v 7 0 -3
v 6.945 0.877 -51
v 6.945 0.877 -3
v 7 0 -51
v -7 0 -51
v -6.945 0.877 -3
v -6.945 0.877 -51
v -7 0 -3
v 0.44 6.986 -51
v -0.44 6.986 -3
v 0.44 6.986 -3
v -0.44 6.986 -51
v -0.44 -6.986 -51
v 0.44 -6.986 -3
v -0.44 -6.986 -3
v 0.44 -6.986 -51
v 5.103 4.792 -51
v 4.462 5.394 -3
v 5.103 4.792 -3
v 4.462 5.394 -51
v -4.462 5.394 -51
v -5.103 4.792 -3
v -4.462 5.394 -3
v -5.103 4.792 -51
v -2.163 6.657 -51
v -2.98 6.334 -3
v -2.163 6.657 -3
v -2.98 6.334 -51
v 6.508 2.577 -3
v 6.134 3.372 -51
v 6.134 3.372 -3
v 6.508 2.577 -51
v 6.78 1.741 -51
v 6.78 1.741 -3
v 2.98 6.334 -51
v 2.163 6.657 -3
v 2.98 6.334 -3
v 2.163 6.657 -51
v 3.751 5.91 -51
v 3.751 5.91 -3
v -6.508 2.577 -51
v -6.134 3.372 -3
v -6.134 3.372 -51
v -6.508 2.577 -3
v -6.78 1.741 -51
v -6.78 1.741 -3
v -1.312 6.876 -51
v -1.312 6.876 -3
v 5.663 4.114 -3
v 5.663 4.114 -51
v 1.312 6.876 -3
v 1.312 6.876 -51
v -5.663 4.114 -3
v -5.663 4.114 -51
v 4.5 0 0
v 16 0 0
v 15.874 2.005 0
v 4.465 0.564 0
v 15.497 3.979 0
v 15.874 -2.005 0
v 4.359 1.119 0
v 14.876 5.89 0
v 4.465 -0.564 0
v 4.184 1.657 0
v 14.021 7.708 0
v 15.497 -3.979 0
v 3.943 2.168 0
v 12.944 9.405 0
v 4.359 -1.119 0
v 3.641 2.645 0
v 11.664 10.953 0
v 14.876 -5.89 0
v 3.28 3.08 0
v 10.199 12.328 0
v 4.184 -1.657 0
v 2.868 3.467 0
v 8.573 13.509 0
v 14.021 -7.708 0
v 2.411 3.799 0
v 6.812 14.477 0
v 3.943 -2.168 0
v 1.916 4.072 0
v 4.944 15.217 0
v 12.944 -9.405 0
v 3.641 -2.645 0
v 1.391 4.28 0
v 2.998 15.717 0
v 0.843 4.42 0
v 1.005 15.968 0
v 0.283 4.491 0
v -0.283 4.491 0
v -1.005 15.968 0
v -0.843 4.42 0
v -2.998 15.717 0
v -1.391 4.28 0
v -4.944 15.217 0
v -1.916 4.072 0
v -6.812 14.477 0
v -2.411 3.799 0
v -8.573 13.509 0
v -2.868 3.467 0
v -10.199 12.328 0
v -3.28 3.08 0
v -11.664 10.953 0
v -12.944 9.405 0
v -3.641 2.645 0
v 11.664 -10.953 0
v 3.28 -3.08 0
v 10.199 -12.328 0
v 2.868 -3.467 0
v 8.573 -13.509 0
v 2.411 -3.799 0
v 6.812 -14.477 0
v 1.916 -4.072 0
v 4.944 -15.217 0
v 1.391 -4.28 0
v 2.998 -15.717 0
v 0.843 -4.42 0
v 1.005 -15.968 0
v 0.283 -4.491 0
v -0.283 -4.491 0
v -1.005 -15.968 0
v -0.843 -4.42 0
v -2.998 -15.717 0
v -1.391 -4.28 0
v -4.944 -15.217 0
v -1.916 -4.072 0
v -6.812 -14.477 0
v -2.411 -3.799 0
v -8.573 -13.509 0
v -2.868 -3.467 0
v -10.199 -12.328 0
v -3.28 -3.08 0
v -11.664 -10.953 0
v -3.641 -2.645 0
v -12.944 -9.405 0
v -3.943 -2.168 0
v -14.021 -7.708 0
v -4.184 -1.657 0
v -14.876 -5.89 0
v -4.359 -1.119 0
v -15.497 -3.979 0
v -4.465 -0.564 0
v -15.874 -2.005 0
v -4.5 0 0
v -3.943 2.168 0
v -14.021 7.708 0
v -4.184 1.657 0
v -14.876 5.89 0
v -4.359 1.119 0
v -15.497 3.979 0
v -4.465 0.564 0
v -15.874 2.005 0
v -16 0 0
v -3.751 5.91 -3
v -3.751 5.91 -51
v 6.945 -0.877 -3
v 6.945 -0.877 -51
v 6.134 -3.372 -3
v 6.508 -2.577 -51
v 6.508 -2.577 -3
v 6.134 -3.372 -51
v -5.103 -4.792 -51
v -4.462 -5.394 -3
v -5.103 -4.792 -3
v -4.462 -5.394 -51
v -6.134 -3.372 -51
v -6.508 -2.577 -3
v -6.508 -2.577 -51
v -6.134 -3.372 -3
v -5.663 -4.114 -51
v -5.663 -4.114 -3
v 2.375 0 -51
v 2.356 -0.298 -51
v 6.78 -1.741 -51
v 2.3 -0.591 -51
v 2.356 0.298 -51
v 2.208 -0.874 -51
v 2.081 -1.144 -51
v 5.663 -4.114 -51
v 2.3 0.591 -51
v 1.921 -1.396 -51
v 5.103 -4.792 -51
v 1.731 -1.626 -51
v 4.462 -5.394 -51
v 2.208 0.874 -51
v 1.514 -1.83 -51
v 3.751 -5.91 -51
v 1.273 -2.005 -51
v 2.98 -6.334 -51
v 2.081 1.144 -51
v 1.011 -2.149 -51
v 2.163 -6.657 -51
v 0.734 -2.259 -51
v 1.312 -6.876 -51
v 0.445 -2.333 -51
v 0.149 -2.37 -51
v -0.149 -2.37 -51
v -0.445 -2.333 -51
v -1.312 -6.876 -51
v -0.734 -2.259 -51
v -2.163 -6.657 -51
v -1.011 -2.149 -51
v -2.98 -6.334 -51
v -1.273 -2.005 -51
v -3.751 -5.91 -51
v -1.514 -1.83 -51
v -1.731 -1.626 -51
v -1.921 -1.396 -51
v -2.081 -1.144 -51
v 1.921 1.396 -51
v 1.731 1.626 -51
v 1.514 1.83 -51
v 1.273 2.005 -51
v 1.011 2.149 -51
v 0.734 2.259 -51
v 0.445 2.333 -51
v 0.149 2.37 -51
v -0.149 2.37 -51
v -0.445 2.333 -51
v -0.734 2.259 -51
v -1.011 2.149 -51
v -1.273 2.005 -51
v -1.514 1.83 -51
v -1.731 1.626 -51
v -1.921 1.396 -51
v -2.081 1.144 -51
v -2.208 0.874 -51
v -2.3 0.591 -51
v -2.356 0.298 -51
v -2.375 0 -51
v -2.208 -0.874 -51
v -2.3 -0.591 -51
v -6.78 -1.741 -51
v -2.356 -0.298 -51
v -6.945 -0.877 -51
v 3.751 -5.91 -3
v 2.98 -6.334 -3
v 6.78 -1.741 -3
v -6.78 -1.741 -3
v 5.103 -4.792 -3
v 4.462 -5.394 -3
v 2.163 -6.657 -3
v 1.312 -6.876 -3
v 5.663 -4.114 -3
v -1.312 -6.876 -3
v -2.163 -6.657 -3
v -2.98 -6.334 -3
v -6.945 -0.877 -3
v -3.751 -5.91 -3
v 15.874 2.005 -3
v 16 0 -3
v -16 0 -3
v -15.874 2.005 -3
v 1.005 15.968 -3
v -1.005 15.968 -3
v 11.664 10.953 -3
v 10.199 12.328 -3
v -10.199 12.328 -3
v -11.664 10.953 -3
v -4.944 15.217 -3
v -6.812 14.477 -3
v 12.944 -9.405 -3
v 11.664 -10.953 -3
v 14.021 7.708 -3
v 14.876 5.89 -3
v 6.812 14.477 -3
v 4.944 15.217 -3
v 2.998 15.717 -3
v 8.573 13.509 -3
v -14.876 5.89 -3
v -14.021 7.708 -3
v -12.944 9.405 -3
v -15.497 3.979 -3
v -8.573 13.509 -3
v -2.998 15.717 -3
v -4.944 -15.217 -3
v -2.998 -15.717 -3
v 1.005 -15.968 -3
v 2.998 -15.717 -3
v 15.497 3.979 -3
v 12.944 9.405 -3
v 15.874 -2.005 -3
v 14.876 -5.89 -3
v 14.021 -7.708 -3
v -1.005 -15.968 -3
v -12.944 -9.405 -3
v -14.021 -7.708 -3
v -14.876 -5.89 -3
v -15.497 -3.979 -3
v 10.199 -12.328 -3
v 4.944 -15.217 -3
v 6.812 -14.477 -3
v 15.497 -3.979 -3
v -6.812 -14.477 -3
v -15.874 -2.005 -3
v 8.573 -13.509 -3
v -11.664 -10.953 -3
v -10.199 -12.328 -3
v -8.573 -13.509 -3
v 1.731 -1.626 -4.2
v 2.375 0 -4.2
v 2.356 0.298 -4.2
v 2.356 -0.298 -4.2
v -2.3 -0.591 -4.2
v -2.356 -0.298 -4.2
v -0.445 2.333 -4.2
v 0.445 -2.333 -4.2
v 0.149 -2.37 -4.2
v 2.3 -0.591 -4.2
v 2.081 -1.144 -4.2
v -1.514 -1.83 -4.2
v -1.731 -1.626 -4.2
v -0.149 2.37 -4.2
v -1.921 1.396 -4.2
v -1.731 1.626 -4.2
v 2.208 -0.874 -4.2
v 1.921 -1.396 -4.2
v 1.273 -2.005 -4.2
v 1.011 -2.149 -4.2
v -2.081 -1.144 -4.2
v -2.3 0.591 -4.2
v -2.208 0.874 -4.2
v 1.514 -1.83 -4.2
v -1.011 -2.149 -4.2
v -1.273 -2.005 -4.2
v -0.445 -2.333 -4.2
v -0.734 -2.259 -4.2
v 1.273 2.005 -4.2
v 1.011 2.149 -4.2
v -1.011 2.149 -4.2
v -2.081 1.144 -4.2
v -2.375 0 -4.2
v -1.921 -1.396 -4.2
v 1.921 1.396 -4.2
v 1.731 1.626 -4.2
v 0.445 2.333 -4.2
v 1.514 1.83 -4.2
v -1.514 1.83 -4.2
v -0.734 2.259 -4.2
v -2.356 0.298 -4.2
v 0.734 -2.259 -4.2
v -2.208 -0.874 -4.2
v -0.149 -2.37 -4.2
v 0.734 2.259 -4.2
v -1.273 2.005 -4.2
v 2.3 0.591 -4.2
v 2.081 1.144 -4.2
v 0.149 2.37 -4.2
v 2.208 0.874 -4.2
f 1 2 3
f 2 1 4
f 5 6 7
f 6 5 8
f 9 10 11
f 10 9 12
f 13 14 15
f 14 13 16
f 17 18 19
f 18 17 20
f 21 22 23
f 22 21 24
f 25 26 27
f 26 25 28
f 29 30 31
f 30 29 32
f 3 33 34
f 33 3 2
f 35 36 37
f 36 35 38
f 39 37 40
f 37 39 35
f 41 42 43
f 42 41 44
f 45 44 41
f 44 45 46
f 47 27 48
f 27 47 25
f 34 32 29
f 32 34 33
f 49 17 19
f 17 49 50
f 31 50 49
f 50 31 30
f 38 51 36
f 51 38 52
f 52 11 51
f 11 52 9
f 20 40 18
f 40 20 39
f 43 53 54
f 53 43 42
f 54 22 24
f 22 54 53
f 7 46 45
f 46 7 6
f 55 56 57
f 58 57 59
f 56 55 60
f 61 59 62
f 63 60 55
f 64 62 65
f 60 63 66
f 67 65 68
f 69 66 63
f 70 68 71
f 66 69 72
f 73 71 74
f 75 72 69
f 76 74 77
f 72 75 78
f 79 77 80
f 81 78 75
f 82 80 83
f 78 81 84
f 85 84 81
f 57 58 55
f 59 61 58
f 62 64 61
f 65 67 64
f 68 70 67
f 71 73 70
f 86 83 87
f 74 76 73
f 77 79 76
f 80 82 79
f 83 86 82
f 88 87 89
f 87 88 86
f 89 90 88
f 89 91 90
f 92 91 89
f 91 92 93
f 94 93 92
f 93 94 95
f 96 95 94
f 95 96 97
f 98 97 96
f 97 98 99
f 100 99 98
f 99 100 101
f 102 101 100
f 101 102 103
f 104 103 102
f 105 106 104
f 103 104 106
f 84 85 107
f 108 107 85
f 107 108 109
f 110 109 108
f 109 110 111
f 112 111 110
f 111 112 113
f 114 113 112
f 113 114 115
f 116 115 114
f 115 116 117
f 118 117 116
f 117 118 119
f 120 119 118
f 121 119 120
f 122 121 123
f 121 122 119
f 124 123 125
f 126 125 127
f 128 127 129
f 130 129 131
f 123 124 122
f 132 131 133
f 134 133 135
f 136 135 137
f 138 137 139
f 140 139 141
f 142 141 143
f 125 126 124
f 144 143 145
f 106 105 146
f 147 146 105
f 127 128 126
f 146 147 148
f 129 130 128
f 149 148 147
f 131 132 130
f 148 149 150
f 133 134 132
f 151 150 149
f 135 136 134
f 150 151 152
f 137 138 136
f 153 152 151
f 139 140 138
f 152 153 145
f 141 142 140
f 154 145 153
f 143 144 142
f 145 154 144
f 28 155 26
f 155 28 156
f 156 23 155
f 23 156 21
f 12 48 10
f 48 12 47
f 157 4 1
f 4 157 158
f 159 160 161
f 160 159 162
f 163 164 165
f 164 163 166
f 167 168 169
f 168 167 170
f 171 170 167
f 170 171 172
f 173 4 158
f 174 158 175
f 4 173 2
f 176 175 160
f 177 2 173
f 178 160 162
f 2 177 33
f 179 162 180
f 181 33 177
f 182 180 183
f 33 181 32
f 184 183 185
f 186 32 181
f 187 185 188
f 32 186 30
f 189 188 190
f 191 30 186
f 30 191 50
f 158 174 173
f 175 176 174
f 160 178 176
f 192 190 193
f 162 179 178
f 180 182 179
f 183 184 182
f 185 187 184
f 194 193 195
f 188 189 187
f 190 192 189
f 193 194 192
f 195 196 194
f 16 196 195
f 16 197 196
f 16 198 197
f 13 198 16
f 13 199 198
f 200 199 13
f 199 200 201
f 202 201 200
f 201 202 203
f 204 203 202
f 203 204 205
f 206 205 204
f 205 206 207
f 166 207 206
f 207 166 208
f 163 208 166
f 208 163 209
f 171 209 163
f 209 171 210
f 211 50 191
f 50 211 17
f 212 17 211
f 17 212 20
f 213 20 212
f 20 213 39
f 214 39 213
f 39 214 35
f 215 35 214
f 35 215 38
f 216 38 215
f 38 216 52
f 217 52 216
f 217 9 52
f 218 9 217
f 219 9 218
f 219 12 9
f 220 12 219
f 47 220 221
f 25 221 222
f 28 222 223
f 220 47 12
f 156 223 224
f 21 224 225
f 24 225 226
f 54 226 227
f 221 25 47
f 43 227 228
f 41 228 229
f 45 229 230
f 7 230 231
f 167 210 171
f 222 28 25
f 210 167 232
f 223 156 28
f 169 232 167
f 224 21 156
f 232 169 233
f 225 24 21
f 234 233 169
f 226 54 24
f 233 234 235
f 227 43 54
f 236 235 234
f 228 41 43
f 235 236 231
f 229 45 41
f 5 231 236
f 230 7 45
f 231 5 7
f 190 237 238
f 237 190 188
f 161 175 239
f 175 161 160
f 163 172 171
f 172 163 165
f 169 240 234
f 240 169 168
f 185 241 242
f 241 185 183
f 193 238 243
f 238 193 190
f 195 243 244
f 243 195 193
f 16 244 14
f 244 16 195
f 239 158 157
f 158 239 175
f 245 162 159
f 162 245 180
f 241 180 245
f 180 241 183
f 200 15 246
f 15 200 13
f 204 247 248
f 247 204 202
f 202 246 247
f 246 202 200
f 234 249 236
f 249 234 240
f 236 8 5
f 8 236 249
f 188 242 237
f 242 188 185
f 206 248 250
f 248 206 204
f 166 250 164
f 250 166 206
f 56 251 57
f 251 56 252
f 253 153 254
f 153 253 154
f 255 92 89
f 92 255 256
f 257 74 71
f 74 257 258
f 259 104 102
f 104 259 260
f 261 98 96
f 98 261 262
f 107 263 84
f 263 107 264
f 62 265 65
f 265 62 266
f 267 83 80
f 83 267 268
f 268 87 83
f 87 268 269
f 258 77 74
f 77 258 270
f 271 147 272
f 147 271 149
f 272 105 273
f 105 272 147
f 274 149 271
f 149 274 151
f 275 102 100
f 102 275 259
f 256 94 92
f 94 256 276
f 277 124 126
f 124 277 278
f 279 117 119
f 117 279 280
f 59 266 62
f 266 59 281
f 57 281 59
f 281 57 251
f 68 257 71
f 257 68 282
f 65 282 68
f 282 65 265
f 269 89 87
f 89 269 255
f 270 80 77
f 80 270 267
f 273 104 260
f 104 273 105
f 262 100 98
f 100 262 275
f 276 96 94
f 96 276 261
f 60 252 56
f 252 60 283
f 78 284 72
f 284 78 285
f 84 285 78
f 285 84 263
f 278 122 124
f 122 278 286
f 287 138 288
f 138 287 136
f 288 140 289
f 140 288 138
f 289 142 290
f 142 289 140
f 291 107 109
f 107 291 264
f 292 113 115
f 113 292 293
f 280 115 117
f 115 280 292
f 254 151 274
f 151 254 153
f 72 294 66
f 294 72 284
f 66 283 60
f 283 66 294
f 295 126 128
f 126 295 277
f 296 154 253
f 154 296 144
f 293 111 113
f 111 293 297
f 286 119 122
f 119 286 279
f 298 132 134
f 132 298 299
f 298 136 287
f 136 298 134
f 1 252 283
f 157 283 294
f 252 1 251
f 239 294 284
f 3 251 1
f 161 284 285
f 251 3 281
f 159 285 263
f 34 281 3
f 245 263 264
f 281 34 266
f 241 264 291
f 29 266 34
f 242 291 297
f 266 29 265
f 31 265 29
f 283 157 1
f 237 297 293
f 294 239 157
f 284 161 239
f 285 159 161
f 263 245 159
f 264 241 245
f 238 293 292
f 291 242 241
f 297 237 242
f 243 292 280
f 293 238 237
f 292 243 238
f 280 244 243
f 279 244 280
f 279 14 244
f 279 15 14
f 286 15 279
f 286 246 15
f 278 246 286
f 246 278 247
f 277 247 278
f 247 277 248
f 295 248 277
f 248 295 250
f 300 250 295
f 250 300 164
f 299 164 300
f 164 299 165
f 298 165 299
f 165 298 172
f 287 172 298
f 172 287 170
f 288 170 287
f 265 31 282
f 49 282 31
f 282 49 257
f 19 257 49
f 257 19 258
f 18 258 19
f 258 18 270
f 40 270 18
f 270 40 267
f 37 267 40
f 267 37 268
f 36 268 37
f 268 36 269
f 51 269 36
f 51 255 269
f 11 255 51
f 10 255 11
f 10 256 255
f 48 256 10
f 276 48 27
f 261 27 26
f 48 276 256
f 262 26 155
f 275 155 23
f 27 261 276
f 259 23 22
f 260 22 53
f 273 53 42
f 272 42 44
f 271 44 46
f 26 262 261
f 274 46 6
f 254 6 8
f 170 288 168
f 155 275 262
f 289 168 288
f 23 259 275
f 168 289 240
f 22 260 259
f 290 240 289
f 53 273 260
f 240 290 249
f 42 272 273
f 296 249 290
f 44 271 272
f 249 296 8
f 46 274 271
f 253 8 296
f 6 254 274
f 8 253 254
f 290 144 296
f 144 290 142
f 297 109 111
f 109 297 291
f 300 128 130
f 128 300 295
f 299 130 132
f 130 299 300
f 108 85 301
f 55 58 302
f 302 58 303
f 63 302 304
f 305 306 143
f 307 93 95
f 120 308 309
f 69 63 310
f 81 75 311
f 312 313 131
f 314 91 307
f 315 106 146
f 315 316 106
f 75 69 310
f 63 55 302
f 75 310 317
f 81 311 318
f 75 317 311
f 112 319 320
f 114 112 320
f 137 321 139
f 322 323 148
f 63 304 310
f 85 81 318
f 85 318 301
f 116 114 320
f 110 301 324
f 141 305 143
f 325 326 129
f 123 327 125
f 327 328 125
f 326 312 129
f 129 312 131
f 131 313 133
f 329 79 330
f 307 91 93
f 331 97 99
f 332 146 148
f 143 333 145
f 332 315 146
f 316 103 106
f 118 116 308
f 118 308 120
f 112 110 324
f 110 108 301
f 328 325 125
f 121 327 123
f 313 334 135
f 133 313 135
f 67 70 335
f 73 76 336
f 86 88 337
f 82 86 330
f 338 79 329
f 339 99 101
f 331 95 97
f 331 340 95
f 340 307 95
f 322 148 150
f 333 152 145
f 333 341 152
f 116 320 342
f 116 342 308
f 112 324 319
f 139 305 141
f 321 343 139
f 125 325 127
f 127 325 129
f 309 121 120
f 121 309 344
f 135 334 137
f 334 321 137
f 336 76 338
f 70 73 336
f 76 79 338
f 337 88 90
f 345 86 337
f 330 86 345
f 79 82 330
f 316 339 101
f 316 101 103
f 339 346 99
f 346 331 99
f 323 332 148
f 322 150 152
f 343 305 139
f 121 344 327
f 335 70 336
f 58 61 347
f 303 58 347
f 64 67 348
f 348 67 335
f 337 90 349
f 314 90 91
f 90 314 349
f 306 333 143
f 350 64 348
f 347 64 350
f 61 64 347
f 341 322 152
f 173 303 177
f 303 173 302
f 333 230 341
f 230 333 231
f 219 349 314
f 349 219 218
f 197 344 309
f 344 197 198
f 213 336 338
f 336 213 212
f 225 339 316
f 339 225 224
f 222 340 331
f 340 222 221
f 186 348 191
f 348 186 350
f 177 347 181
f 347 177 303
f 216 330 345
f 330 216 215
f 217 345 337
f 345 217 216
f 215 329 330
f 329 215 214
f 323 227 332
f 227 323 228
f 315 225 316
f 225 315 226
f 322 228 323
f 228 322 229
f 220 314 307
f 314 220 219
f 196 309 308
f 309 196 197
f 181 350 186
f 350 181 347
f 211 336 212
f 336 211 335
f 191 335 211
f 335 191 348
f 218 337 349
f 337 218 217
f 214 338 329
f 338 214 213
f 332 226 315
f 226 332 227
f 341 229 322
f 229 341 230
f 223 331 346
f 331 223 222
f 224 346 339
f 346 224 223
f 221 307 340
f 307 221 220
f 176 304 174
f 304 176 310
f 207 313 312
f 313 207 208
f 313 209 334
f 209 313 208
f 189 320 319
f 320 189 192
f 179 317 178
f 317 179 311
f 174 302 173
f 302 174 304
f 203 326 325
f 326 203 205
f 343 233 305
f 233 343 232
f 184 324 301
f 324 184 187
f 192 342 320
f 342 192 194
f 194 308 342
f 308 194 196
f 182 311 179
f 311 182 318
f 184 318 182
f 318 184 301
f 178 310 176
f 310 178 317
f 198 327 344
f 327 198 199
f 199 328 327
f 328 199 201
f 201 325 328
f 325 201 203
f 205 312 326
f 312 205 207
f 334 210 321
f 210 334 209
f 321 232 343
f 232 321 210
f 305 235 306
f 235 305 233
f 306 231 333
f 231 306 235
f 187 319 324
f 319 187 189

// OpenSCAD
$fn = 50;


difference() {
	union() {
		translate(v = [0, 0, -51.0000000000]) {
			cylinder(h = 51, r = 7.0000000000);
		}
		translate(v = [0, 0, -3.0000000000]) {
			cylinder(h = 3, r = 16.0000000000);
		}
	}
	union() {
		translate(v = [0, 0, 0]) {
			rotate(a = [0, 0, 0]) {
				difference() {
					union() {
						#translate(v = [0, 0, -51.0000000000]) {
							cylinder(h = 51, r = 2.2500000000);
						}
						#translate(v = [0, 0, -4.2000000000]) {
							cylinder(h = 4.2000000000, r1 = 2.3750000000, r2 = 4.5000000000);
						}
						#translate(v = [0, 0, -51.0000000000]) {
							cylinder(h = 51, r = 2.3750000000);
						}
						#translate(v = [0, 0, -51.0000000000]) {
							cylinder(h = 51, r = 2.2500000000);
						}
					}
					union();
				}
			}
		}
	}
}
